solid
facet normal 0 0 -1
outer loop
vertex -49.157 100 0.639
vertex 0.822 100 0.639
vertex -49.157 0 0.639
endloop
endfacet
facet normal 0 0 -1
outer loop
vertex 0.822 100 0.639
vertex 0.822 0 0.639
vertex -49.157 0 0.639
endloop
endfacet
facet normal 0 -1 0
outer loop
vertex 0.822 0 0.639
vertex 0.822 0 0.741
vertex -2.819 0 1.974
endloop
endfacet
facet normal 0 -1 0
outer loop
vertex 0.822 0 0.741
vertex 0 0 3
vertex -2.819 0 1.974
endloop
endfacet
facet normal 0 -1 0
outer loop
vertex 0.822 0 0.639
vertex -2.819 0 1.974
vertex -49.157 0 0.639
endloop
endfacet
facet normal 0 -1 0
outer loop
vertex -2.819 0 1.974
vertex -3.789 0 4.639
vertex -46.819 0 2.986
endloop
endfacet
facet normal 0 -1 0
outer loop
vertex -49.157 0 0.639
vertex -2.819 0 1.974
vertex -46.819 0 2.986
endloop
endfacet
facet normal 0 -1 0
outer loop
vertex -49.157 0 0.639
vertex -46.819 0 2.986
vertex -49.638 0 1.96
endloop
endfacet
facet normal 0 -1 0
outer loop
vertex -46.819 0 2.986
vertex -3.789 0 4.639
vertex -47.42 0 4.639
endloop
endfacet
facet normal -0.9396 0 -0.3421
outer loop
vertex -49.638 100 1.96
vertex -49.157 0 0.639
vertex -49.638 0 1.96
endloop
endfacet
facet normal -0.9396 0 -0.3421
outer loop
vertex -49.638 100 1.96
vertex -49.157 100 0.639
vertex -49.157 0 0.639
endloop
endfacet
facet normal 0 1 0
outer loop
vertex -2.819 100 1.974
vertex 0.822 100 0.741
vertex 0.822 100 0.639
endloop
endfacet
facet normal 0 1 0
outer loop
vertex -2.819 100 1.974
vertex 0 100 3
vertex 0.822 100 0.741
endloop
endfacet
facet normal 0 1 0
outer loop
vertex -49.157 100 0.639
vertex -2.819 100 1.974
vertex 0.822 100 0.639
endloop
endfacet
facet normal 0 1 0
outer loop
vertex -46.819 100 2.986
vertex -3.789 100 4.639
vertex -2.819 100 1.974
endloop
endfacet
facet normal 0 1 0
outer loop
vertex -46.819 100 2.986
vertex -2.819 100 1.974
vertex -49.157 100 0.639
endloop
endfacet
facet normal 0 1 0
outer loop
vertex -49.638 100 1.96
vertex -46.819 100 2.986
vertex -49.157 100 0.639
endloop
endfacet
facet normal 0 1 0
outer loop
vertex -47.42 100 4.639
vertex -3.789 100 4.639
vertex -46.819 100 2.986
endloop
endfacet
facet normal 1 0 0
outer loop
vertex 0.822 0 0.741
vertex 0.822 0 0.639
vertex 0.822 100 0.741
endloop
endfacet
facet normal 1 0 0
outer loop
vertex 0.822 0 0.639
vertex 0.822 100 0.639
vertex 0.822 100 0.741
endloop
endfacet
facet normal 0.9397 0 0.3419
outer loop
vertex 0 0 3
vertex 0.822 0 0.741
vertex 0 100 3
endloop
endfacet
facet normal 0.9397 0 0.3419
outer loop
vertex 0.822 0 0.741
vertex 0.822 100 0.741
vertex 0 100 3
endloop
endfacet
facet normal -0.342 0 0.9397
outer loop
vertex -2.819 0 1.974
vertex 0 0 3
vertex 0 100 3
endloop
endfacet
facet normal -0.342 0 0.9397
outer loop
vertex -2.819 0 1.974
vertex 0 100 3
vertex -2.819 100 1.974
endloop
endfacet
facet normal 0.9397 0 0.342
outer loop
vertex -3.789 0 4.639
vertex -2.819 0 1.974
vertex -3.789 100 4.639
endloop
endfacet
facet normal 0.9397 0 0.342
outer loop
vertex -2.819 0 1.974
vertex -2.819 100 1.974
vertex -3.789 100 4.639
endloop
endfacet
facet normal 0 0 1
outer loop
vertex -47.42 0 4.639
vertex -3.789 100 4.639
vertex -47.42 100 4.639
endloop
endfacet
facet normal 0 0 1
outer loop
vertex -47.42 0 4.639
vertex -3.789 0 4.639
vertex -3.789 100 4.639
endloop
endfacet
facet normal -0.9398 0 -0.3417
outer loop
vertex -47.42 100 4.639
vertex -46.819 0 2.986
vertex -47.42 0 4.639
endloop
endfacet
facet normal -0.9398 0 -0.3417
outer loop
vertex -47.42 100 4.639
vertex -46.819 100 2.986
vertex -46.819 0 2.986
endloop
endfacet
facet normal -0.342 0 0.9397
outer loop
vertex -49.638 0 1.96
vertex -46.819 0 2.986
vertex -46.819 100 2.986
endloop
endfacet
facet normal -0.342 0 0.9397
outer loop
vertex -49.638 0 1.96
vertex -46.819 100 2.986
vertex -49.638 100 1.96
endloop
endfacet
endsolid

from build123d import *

# Parameters (mm, degrees)
BOX018_W               = 15
BOX018_H               = 100
BOX018_DEPTH           = 3
BOX017_W               = 15
BOX017_H               = 100
BOX017_DEPTH           = 3
BOX016_W               = 27
BOX016_H               = 100
BOX016_DEPTH           = 3
BOX015_W               = 27
BOX015_H               = 100
BOX015_DEPTH           = 3
BOX014_W               = 4
BOX014_H               = 100
BOX014_DEPTH           = 51
BOX014_PITCH_ANGLE     = 20
CUT012_PLACEMENT_ANGLE = 110


with BuildPart() as ranura_superior:
    # Box018 → Box018 (new body)
    with BuildSketch(Plane(origin=(16, 0, 44), x_dir=(1, 0, 0), z_dir=(0, 0, 1))):
        with Locations((7.5, 50)):
            Rectangle(BOX018_W, BOX018_H)
    extrude(amount=BOX018_DEPTH)


with BuildPart() as ranura_inferiror:
    # Box017 → Box017 (new body)
    with BuildSketch(Plane.XY):
        with Locations((7.5, 50)):
            Rectangle(BOX017_W, BOX017_H)
    extrude(amount=BOX017_DEPTH)


with BuildPart() as plancha_resta_arriba:
    # Box016 → Box016 (new body)
    with BuildSketch(Plane(origin=(5, 0, 47), x_dir=(1, 0, 0), z_dir=(0, 0, 1))):
        with Locations((13.5, 50)):
            Rectangle(BOX016_W, BOX016_H)
    extrude(amount=BOX016_DEPTH)


with BuildPart() as plancha_resta_abajo:
    # Box015 → Box015 (new body)
    with BuildSketch(Plane(origin=(-9, 0, -3), x_dir=(1, 0, 0), z_dir=(0, 0, 1))):
        with Locations((13.5, 50)):
            Rectangle(BOX015_W, BOX015_H)
    extrude(amount=BOX015_DEPTH)


with BuildPart() as tapa_alante_con_ranuras:
    # Box014 → Box014 (new body)
    with BuildSketch(Plane.XY):
        with Locations((2, 50)):
            Rectangle(BOX014_W, BOX014_H)
    extrude(amount=BOX014_DEPTH)


with BuildPart() as tapa_alante_con_ranuras_1:
    # Box014 pitch: moved
    add(tapa_alante_con_ranuras.part.rotate(Axis((0, 0, 0), (0, 1, 0)), BOX014_PITCH_ANGLE))


with BuildPart() as tapa_alante_con_ranuras_2:
    # Box014 placement: moved
    add(tapa_alante_con_ranuras_1.part.moved(Location((-2.499695, 0, 0.034905))))

    # Cut009: cut plancha resta abajo
    add(plancha_resta_abajo.part, mode=Mode.SUBTRACT)

    # Cut010: cut plancha resta arriba
    add(plancha_resta_arriba.part, mode=Mode.SUBTRACT)

    # Cut011: cut ranura inferiror
    add(ranura_inferiror.part, mode=Mode.SUBTRACT)

    # Cut012: cut ranura superior
    add(ranura_superior.part, mode=Mode.SUBTRACT)


with BuildPart() as tapa_alante_con_ranuras_3:
    # Cut012 placement: moved
    add(tapa_alante_con_ranuras_2.part.moved(Location((0, 0, 3))).rotate(Axis((0, 0, 3), (0, -1, 0)), CUT012_PLACEMENT_ANGLE))


solid = tapa_alante_con_ranuras_3.part
